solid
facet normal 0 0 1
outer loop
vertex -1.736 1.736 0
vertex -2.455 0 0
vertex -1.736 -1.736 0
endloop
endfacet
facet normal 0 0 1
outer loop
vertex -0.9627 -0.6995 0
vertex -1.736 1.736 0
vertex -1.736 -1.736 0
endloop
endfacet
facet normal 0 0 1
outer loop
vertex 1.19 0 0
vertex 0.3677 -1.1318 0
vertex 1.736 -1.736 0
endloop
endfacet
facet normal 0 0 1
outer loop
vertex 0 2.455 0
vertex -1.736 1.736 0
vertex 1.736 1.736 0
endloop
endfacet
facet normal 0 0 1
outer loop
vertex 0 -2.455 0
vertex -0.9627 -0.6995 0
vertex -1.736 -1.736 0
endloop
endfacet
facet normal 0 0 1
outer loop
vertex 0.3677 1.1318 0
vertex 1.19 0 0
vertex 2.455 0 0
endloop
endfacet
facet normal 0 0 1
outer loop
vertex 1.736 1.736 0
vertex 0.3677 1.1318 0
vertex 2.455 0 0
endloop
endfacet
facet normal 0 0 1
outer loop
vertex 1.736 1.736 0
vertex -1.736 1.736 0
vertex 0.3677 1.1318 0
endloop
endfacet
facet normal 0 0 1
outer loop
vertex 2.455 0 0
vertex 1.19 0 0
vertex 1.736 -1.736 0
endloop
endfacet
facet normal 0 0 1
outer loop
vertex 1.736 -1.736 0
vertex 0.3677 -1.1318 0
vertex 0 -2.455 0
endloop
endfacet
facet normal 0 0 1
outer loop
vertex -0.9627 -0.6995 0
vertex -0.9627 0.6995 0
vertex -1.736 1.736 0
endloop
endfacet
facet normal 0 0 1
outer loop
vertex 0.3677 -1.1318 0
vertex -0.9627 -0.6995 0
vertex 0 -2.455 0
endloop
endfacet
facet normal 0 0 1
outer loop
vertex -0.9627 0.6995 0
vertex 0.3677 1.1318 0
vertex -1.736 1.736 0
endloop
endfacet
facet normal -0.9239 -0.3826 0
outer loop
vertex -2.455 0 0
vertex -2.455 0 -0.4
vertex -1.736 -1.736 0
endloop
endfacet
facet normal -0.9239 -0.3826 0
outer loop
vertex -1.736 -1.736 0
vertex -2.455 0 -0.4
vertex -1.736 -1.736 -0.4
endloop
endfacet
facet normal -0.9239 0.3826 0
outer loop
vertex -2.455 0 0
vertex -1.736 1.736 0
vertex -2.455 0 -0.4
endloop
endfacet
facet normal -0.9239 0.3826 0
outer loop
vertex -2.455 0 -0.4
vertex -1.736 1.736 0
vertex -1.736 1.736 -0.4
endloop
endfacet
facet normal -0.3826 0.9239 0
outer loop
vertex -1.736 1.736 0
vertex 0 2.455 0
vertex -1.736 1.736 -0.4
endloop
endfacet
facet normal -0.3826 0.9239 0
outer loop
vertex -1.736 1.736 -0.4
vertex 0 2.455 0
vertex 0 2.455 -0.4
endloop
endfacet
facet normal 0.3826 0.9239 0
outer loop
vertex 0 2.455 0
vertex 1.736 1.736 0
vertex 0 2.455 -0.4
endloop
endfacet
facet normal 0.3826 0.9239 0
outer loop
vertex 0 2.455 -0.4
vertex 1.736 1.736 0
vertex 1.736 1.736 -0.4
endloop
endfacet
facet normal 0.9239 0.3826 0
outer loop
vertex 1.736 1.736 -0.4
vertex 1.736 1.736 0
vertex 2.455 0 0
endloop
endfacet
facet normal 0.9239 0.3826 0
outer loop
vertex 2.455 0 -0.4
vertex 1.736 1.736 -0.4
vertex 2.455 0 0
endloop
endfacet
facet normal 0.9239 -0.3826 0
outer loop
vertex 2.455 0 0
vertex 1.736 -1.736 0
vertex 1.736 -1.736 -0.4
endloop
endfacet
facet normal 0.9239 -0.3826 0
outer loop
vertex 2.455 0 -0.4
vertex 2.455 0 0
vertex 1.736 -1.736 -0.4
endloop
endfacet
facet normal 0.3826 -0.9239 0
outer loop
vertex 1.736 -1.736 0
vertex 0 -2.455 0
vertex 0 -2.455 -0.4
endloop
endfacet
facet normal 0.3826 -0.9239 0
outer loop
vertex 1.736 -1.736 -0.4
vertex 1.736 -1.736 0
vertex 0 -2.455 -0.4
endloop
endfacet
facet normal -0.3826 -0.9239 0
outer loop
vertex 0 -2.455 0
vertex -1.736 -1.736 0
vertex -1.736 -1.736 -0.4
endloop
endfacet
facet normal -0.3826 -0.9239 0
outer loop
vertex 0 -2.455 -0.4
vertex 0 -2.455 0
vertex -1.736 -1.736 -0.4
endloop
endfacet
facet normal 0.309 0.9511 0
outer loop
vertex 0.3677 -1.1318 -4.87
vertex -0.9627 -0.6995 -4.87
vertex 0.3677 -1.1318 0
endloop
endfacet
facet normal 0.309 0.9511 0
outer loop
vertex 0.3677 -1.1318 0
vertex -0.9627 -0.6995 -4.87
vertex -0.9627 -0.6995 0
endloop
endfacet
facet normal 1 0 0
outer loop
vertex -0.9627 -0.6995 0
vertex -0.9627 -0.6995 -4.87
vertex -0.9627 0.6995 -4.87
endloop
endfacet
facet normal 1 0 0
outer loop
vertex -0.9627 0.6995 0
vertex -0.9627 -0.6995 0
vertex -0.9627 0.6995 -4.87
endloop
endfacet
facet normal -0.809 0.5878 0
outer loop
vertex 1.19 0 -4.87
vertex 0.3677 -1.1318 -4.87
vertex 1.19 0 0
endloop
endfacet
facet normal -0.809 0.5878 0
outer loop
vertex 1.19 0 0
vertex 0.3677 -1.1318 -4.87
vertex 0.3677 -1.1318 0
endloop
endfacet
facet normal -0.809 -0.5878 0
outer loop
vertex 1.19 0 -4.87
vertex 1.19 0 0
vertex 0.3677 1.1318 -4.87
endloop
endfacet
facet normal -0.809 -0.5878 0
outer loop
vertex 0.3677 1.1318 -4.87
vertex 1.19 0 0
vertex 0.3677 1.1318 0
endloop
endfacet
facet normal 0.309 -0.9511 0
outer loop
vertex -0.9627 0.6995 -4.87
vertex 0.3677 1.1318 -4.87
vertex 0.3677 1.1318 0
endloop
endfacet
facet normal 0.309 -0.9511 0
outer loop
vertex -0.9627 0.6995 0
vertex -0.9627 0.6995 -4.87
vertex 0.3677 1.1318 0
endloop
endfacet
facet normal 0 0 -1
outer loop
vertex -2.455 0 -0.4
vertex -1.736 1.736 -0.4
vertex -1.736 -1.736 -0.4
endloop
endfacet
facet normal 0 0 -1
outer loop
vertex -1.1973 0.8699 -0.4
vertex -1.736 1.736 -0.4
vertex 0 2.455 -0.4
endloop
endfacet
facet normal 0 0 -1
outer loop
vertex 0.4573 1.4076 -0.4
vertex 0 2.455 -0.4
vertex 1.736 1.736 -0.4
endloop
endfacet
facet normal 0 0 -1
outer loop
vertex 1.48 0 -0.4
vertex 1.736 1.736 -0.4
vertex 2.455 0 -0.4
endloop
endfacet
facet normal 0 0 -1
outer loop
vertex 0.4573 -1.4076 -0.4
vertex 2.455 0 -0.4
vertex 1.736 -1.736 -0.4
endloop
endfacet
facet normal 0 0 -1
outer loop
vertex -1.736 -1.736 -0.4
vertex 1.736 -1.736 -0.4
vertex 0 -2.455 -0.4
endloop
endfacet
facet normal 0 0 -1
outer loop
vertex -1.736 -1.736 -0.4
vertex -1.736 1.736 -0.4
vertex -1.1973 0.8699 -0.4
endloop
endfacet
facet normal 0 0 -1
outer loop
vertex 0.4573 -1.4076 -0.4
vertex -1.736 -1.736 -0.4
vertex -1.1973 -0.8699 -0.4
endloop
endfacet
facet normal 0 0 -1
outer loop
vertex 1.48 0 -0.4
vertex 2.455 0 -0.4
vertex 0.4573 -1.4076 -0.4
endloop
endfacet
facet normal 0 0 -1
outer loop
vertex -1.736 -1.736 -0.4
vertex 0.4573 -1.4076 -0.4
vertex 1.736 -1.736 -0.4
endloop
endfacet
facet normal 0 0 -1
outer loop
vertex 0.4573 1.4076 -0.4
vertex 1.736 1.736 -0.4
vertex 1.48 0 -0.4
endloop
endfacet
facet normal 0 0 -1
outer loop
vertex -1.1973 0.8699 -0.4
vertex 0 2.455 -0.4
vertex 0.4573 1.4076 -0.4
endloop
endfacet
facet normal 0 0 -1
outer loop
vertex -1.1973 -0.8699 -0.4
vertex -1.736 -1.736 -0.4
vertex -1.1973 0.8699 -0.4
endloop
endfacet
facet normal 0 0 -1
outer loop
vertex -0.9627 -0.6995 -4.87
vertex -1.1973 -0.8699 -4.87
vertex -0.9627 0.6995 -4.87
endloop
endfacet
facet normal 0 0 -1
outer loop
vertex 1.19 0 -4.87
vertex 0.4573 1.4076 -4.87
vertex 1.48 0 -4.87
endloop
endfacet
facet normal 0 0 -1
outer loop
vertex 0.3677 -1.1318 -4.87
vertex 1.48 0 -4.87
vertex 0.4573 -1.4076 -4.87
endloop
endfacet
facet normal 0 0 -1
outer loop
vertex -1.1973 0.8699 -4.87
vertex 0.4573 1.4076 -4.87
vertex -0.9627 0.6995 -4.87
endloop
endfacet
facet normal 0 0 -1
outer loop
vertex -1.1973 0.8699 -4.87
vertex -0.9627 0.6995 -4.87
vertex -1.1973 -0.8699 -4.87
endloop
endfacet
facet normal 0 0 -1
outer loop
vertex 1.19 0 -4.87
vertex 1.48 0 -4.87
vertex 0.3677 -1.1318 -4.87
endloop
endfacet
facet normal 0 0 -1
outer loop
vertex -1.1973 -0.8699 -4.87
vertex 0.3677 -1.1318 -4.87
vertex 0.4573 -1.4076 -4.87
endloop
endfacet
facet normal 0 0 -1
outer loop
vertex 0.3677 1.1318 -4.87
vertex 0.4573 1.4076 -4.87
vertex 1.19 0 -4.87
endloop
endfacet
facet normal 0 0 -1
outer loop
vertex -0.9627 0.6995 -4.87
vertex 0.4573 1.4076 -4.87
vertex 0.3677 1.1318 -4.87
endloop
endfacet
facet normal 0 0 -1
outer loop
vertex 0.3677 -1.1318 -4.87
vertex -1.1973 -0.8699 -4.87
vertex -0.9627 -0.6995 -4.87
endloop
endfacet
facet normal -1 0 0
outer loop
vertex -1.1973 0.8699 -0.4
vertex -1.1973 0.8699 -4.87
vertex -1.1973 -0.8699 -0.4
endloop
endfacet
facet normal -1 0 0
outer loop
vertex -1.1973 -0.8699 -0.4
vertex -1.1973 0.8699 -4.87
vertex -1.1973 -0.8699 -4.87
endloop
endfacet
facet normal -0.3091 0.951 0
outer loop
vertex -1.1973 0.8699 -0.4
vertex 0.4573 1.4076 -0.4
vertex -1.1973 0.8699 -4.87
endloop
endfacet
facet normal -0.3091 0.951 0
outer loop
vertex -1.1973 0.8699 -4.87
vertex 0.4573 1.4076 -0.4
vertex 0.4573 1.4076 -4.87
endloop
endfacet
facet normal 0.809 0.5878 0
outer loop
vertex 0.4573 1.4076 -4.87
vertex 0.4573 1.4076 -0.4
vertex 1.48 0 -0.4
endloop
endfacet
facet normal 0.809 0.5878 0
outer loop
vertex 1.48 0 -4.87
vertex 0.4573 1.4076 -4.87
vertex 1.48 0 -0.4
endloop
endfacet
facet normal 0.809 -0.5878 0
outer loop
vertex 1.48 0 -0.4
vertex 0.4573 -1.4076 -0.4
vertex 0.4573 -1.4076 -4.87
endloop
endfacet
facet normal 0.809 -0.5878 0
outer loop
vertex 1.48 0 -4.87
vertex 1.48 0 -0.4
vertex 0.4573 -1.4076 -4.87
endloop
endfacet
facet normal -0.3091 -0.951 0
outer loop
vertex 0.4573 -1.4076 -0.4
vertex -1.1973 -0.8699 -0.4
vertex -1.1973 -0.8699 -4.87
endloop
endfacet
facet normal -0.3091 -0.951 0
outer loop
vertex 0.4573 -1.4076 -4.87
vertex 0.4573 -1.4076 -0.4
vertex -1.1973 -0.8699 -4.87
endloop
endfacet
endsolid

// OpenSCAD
bodydiam=2.96;
holediam=2.38;
topdiam=4.91;
topheight=0.4;
wholeheight=4.87;

module metalfitting (bodydiam=2.96, holediam=2.38, topdiam=4.91, topheight=0.4, wholeheight=4.87)
	{
	rotate([180,0,0])
		{
		difference()
			{
				union()
					{
						cylinder(topheight, topdiam/2, topdiam/2, 0);
						cylinder(wholeheight, bodydiam/2, bodydiam/2, 0);
					}
				translate([0,0,-1])
						{
							cylinder(wholeheight+2, holediam/2, holediam/2, 0);
						}
			}
	}
}	

metalfitting();			
